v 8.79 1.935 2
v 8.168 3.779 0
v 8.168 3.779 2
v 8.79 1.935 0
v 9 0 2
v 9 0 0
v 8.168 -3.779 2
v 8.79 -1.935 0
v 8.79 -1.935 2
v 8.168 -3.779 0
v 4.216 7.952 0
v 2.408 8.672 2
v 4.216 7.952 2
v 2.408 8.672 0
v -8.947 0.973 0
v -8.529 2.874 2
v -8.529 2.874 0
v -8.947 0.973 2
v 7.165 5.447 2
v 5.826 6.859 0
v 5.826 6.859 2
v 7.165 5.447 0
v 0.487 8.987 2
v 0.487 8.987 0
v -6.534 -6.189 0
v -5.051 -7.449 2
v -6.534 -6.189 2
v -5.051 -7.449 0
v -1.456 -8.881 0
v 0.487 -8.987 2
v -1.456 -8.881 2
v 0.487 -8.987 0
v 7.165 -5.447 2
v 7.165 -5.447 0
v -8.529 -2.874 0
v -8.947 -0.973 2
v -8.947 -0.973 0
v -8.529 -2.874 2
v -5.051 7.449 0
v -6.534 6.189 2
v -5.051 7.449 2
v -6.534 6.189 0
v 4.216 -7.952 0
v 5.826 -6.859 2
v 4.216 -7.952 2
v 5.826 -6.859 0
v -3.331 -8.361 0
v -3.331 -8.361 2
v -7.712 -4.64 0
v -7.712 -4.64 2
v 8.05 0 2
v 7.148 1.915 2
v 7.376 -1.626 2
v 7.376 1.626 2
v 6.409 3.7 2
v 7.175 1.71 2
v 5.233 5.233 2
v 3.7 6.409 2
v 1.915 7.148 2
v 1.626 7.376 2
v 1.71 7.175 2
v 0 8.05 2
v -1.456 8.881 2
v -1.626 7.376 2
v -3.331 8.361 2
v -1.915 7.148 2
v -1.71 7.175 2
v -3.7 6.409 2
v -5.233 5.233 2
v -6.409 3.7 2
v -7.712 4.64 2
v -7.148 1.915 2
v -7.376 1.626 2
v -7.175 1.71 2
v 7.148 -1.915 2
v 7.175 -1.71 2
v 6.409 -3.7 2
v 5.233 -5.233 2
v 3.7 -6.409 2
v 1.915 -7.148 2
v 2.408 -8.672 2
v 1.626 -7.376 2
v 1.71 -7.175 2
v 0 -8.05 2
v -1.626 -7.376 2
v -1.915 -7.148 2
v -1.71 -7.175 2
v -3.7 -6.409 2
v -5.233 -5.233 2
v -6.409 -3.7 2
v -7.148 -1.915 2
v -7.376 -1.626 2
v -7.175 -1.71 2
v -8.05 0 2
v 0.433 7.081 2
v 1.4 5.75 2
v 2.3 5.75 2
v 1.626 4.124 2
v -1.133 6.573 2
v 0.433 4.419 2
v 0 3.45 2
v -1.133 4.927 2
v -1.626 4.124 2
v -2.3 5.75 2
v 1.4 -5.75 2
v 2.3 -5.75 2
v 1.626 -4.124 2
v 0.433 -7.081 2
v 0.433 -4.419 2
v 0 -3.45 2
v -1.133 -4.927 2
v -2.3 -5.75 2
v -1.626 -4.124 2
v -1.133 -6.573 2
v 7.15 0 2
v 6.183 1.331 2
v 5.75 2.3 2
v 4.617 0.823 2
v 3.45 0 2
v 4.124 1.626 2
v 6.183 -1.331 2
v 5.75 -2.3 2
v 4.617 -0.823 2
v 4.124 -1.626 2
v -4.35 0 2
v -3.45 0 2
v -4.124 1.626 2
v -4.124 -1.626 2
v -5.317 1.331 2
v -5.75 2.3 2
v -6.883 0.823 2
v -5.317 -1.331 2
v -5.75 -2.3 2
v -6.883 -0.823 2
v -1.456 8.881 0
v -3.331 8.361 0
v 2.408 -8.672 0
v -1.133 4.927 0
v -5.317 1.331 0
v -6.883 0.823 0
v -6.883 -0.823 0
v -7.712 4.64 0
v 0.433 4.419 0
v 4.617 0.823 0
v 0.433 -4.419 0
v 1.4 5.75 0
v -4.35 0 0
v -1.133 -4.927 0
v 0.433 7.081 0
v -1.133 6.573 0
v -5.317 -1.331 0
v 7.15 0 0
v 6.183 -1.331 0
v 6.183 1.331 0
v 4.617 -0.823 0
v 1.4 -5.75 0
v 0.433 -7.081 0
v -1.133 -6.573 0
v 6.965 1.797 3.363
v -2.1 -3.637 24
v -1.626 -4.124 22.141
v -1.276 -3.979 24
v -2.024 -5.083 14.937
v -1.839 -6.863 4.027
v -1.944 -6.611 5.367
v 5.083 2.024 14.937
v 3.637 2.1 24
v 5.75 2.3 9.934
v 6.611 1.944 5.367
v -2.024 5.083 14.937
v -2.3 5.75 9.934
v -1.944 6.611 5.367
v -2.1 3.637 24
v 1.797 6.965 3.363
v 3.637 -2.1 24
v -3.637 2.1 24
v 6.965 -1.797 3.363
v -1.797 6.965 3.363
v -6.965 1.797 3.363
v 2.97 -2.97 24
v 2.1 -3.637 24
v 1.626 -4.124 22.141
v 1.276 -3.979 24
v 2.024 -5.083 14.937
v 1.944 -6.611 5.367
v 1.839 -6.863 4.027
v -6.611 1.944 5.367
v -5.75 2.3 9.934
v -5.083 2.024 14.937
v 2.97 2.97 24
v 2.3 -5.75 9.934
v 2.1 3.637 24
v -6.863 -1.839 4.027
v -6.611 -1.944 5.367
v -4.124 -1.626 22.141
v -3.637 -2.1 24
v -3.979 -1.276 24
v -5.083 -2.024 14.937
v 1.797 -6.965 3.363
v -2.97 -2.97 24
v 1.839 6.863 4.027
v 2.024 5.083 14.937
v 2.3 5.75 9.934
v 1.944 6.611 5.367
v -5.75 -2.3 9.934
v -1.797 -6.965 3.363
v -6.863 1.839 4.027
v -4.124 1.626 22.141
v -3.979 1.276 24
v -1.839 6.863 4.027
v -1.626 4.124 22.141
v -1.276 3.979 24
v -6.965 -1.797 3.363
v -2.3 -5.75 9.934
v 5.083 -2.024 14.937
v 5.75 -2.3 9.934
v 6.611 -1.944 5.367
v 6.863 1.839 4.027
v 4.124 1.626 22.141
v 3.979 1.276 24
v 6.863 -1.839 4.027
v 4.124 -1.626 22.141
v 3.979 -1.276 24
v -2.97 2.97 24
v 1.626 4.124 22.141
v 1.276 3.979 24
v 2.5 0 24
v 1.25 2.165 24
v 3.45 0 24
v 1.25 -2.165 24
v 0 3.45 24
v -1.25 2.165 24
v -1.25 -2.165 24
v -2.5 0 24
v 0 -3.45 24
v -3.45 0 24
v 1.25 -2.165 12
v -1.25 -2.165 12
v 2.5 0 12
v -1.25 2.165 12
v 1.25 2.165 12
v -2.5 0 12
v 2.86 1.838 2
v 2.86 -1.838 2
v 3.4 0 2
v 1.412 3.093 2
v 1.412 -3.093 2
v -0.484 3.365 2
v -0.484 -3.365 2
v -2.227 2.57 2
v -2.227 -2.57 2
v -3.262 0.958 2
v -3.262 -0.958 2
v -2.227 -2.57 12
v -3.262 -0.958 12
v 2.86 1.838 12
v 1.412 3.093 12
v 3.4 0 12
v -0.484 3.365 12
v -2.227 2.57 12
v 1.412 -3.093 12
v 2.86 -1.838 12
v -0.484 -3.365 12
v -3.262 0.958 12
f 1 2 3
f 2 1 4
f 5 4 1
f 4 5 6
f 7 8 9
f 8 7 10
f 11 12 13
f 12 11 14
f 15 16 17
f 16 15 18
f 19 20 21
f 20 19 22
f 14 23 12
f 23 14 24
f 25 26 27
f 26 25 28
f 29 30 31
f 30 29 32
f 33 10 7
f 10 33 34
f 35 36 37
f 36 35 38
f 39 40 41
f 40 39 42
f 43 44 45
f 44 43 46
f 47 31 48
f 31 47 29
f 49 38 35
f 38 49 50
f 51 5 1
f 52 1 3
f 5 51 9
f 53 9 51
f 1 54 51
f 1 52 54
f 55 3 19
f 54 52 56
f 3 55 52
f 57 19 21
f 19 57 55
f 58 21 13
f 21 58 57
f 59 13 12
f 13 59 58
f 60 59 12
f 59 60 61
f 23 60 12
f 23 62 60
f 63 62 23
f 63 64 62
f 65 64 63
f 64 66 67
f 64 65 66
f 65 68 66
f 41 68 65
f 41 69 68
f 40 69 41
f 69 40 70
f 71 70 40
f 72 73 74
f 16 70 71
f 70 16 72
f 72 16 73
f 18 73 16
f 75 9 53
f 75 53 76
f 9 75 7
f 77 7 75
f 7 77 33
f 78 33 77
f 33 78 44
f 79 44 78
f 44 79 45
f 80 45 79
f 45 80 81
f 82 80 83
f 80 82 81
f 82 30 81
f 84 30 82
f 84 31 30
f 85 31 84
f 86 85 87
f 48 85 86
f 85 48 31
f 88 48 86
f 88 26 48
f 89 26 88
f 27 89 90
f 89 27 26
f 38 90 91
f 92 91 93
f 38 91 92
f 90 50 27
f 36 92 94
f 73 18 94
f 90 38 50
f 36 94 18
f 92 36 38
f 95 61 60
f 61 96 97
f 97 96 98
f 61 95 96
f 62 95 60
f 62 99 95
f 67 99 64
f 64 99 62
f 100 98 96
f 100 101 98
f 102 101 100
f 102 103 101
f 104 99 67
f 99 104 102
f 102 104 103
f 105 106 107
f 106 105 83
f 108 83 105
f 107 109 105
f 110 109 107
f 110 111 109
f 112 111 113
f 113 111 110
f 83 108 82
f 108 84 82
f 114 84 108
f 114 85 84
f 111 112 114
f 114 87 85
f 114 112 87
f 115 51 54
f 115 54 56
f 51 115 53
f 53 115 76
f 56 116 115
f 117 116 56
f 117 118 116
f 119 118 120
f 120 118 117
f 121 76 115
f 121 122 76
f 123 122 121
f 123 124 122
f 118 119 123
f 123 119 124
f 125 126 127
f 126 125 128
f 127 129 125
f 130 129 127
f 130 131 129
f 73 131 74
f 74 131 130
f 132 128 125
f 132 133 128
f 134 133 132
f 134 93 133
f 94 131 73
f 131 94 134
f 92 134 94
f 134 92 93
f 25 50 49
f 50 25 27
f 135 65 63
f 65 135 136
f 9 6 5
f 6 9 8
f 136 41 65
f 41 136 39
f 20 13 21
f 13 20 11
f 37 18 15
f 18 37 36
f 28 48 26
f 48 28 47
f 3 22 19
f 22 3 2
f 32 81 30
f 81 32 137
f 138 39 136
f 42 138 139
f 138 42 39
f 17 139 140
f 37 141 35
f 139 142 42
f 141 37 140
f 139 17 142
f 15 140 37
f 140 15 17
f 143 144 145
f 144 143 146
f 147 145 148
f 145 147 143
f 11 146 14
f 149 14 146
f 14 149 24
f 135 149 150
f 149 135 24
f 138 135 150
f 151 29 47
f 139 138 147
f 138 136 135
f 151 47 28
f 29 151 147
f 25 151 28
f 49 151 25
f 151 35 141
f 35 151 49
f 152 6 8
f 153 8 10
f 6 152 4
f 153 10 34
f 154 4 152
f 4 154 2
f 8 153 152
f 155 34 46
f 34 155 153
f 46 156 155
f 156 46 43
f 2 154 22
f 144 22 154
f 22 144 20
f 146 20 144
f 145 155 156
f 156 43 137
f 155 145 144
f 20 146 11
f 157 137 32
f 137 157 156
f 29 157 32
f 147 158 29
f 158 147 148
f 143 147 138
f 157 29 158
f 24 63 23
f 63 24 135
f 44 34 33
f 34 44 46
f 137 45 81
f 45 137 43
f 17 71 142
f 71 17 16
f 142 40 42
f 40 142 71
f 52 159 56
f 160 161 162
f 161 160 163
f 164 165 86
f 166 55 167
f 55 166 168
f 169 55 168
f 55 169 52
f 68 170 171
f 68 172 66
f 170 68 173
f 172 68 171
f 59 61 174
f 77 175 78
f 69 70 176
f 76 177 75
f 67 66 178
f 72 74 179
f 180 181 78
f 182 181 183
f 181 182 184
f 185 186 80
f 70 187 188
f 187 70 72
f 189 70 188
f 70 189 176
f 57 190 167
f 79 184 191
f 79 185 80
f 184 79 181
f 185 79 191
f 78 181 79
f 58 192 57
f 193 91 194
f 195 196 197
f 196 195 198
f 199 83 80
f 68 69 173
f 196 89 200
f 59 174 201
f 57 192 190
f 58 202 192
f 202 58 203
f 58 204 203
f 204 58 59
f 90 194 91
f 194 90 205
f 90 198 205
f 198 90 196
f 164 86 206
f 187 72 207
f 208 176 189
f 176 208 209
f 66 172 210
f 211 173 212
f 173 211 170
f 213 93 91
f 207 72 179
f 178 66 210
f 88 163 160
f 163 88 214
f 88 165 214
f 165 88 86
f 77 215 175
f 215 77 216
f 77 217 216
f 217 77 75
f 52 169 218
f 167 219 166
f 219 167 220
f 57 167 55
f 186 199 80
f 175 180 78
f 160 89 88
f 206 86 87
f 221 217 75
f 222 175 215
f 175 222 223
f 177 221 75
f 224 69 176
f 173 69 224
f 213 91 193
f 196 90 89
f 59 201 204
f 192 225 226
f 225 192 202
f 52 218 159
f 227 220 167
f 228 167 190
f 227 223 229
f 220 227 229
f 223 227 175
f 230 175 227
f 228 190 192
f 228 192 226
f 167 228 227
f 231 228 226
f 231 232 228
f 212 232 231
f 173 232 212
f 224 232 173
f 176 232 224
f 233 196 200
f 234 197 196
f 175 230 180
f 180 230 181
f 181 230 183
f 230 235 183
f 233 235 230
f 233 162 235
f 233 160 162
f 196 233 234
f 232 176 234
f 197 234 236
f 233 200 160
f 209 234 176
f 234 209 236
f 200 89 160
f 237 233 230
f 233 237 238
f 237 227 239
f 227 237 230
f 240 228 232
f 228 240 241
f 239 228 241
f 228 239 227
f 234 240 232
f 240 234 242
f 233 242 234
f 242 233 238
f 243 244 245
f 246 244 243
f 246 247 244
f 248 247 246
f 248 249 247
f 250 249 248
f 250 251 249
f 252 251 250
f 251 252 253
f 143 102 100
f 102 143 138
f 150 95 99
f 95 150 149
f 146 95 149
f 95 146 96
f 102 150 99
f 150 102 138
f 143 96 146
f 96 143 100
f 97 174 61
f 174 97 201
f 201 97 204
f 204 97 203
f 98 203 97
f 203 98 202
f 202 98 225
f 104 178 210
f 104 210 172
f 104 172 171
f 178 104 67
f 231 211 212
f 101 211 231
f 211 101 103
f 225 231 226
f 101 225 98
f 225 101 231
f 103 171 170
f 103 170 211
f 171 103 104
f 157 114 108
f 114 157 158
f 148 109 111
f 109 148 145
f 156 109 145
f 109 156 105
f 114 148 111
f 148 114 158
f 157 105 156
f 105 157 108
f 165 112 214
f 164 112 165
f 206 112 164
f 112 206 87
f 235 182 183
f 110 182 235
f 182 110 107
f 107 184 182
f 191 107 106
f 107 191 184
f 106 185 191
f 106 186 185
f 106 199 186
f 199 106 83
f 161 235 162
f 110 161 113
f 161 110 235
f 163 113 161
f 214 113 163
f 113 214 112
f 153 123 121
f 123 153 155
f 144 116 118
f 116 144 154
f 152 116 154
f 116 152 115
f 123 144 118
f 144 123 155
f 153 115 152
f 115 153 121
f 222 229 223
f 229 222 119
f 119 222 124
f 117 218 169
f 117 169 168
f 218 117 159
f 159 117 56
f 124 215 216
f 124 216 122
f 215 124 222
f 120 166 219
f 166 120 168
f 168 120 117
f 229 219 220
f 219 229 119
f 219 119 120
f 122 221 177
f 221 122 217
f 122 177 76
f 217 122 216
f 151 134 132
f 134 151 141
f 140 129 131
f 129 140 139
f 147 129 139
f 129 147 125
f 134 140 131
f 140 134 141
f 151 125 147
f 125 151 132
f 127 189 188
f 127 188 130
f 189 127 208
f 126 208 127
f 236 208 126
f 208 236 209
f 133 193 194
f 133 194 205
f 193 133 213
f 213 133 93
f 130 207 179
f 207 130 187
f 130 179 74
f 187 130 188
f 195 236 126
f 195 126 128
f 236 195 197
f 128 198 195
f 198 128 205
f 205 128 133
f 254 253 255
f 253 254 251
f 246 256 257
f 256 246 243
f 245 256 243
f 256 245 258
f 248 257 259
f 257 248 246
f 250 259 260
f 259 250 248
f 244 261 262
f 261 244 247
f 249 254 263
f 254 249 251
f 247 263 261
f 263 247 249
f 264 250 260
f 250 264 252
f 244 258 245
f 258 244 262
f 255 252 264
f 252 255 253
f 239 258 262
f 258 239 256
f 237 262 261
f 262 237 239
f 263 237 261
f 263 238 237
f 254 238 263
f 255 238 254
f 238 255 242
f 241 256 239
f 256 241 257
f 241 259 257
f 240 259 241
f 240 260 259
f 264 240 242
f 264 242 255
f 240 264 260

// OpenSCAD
plate_radius = 9;
plate_thickness = 2;
chuck_height = 22;
chuck_radius = 4.2;
chuck_base_radius = 7.4;  // Wider base for the cone
screw_hole_radius = 1.4;
screw_hole_offset = 5.75;
top_cylinder_height = chuck_height + 2;  // Height of cylinders above screw holes
top_cylinder_radius = 2.3;  // Radius of cylinders above screw holes

module solid_parts() {
    // Chuck plate
    cylinder(h=plate_thickness, r=plate_radius);
    
    // Chuck shaft
    translate([0, 0, plate_thickness]) {    
        cylinder(h=chuck_height, r1=chuck_base_radius, r2=chuck_radius);
    }
}

module plat_screw_hole() {
    cylinder(h=plate_thickness + 2, r=screw_hole_radius);
}

module magnet_cavity() {
    cylinder(h=10, r=3.4);
}

difference() {
    solid_parts();
    
    translate([0, 0, plate_thickness]) {
        cylinder(h=chuck_height + 1, r=2.5, $fn=6);
    }
    
    // Screw holes with cylinders above them
    translate([0, screw_hole_offset, -1]) {
        plat_screw_hole();
    }
    translate([0, screw_hole_offset, plate_thickness]) {
        cylinder(h=top_cylinder_height, r=top_cylinder_radius);
    }
    
    translate([0, -screw_hole_offset, -1]) {
        plat_screw_hole();
    }
    translate([0, -screw_hole_offset, plate_thickness]) {
        cylinder(h=top_cylinder_height, r=top_cylinder_radius);
    }
    
    translate([screw_hole_offset, 0, -1]) {
        plat_screw_hole();
    }
    translate([screw_hole_offset, 0, plate_thickness]) {
        cylinder(h=top_cylinder_height, r=top_cylinder_radius);
    }
    
    translate([-screw_hole_offset, 0, -1]) {
        plat_screw_hole();
    }
    translate([-screw_hole_offset, 0, plate_thickness]) {
        cylinder(h=top_cylinder_height, r=top_cylinder_radius);
    }
    
    translate([0, 0, plate_thickness]) {
        magnet_cavity();
    } 
}
